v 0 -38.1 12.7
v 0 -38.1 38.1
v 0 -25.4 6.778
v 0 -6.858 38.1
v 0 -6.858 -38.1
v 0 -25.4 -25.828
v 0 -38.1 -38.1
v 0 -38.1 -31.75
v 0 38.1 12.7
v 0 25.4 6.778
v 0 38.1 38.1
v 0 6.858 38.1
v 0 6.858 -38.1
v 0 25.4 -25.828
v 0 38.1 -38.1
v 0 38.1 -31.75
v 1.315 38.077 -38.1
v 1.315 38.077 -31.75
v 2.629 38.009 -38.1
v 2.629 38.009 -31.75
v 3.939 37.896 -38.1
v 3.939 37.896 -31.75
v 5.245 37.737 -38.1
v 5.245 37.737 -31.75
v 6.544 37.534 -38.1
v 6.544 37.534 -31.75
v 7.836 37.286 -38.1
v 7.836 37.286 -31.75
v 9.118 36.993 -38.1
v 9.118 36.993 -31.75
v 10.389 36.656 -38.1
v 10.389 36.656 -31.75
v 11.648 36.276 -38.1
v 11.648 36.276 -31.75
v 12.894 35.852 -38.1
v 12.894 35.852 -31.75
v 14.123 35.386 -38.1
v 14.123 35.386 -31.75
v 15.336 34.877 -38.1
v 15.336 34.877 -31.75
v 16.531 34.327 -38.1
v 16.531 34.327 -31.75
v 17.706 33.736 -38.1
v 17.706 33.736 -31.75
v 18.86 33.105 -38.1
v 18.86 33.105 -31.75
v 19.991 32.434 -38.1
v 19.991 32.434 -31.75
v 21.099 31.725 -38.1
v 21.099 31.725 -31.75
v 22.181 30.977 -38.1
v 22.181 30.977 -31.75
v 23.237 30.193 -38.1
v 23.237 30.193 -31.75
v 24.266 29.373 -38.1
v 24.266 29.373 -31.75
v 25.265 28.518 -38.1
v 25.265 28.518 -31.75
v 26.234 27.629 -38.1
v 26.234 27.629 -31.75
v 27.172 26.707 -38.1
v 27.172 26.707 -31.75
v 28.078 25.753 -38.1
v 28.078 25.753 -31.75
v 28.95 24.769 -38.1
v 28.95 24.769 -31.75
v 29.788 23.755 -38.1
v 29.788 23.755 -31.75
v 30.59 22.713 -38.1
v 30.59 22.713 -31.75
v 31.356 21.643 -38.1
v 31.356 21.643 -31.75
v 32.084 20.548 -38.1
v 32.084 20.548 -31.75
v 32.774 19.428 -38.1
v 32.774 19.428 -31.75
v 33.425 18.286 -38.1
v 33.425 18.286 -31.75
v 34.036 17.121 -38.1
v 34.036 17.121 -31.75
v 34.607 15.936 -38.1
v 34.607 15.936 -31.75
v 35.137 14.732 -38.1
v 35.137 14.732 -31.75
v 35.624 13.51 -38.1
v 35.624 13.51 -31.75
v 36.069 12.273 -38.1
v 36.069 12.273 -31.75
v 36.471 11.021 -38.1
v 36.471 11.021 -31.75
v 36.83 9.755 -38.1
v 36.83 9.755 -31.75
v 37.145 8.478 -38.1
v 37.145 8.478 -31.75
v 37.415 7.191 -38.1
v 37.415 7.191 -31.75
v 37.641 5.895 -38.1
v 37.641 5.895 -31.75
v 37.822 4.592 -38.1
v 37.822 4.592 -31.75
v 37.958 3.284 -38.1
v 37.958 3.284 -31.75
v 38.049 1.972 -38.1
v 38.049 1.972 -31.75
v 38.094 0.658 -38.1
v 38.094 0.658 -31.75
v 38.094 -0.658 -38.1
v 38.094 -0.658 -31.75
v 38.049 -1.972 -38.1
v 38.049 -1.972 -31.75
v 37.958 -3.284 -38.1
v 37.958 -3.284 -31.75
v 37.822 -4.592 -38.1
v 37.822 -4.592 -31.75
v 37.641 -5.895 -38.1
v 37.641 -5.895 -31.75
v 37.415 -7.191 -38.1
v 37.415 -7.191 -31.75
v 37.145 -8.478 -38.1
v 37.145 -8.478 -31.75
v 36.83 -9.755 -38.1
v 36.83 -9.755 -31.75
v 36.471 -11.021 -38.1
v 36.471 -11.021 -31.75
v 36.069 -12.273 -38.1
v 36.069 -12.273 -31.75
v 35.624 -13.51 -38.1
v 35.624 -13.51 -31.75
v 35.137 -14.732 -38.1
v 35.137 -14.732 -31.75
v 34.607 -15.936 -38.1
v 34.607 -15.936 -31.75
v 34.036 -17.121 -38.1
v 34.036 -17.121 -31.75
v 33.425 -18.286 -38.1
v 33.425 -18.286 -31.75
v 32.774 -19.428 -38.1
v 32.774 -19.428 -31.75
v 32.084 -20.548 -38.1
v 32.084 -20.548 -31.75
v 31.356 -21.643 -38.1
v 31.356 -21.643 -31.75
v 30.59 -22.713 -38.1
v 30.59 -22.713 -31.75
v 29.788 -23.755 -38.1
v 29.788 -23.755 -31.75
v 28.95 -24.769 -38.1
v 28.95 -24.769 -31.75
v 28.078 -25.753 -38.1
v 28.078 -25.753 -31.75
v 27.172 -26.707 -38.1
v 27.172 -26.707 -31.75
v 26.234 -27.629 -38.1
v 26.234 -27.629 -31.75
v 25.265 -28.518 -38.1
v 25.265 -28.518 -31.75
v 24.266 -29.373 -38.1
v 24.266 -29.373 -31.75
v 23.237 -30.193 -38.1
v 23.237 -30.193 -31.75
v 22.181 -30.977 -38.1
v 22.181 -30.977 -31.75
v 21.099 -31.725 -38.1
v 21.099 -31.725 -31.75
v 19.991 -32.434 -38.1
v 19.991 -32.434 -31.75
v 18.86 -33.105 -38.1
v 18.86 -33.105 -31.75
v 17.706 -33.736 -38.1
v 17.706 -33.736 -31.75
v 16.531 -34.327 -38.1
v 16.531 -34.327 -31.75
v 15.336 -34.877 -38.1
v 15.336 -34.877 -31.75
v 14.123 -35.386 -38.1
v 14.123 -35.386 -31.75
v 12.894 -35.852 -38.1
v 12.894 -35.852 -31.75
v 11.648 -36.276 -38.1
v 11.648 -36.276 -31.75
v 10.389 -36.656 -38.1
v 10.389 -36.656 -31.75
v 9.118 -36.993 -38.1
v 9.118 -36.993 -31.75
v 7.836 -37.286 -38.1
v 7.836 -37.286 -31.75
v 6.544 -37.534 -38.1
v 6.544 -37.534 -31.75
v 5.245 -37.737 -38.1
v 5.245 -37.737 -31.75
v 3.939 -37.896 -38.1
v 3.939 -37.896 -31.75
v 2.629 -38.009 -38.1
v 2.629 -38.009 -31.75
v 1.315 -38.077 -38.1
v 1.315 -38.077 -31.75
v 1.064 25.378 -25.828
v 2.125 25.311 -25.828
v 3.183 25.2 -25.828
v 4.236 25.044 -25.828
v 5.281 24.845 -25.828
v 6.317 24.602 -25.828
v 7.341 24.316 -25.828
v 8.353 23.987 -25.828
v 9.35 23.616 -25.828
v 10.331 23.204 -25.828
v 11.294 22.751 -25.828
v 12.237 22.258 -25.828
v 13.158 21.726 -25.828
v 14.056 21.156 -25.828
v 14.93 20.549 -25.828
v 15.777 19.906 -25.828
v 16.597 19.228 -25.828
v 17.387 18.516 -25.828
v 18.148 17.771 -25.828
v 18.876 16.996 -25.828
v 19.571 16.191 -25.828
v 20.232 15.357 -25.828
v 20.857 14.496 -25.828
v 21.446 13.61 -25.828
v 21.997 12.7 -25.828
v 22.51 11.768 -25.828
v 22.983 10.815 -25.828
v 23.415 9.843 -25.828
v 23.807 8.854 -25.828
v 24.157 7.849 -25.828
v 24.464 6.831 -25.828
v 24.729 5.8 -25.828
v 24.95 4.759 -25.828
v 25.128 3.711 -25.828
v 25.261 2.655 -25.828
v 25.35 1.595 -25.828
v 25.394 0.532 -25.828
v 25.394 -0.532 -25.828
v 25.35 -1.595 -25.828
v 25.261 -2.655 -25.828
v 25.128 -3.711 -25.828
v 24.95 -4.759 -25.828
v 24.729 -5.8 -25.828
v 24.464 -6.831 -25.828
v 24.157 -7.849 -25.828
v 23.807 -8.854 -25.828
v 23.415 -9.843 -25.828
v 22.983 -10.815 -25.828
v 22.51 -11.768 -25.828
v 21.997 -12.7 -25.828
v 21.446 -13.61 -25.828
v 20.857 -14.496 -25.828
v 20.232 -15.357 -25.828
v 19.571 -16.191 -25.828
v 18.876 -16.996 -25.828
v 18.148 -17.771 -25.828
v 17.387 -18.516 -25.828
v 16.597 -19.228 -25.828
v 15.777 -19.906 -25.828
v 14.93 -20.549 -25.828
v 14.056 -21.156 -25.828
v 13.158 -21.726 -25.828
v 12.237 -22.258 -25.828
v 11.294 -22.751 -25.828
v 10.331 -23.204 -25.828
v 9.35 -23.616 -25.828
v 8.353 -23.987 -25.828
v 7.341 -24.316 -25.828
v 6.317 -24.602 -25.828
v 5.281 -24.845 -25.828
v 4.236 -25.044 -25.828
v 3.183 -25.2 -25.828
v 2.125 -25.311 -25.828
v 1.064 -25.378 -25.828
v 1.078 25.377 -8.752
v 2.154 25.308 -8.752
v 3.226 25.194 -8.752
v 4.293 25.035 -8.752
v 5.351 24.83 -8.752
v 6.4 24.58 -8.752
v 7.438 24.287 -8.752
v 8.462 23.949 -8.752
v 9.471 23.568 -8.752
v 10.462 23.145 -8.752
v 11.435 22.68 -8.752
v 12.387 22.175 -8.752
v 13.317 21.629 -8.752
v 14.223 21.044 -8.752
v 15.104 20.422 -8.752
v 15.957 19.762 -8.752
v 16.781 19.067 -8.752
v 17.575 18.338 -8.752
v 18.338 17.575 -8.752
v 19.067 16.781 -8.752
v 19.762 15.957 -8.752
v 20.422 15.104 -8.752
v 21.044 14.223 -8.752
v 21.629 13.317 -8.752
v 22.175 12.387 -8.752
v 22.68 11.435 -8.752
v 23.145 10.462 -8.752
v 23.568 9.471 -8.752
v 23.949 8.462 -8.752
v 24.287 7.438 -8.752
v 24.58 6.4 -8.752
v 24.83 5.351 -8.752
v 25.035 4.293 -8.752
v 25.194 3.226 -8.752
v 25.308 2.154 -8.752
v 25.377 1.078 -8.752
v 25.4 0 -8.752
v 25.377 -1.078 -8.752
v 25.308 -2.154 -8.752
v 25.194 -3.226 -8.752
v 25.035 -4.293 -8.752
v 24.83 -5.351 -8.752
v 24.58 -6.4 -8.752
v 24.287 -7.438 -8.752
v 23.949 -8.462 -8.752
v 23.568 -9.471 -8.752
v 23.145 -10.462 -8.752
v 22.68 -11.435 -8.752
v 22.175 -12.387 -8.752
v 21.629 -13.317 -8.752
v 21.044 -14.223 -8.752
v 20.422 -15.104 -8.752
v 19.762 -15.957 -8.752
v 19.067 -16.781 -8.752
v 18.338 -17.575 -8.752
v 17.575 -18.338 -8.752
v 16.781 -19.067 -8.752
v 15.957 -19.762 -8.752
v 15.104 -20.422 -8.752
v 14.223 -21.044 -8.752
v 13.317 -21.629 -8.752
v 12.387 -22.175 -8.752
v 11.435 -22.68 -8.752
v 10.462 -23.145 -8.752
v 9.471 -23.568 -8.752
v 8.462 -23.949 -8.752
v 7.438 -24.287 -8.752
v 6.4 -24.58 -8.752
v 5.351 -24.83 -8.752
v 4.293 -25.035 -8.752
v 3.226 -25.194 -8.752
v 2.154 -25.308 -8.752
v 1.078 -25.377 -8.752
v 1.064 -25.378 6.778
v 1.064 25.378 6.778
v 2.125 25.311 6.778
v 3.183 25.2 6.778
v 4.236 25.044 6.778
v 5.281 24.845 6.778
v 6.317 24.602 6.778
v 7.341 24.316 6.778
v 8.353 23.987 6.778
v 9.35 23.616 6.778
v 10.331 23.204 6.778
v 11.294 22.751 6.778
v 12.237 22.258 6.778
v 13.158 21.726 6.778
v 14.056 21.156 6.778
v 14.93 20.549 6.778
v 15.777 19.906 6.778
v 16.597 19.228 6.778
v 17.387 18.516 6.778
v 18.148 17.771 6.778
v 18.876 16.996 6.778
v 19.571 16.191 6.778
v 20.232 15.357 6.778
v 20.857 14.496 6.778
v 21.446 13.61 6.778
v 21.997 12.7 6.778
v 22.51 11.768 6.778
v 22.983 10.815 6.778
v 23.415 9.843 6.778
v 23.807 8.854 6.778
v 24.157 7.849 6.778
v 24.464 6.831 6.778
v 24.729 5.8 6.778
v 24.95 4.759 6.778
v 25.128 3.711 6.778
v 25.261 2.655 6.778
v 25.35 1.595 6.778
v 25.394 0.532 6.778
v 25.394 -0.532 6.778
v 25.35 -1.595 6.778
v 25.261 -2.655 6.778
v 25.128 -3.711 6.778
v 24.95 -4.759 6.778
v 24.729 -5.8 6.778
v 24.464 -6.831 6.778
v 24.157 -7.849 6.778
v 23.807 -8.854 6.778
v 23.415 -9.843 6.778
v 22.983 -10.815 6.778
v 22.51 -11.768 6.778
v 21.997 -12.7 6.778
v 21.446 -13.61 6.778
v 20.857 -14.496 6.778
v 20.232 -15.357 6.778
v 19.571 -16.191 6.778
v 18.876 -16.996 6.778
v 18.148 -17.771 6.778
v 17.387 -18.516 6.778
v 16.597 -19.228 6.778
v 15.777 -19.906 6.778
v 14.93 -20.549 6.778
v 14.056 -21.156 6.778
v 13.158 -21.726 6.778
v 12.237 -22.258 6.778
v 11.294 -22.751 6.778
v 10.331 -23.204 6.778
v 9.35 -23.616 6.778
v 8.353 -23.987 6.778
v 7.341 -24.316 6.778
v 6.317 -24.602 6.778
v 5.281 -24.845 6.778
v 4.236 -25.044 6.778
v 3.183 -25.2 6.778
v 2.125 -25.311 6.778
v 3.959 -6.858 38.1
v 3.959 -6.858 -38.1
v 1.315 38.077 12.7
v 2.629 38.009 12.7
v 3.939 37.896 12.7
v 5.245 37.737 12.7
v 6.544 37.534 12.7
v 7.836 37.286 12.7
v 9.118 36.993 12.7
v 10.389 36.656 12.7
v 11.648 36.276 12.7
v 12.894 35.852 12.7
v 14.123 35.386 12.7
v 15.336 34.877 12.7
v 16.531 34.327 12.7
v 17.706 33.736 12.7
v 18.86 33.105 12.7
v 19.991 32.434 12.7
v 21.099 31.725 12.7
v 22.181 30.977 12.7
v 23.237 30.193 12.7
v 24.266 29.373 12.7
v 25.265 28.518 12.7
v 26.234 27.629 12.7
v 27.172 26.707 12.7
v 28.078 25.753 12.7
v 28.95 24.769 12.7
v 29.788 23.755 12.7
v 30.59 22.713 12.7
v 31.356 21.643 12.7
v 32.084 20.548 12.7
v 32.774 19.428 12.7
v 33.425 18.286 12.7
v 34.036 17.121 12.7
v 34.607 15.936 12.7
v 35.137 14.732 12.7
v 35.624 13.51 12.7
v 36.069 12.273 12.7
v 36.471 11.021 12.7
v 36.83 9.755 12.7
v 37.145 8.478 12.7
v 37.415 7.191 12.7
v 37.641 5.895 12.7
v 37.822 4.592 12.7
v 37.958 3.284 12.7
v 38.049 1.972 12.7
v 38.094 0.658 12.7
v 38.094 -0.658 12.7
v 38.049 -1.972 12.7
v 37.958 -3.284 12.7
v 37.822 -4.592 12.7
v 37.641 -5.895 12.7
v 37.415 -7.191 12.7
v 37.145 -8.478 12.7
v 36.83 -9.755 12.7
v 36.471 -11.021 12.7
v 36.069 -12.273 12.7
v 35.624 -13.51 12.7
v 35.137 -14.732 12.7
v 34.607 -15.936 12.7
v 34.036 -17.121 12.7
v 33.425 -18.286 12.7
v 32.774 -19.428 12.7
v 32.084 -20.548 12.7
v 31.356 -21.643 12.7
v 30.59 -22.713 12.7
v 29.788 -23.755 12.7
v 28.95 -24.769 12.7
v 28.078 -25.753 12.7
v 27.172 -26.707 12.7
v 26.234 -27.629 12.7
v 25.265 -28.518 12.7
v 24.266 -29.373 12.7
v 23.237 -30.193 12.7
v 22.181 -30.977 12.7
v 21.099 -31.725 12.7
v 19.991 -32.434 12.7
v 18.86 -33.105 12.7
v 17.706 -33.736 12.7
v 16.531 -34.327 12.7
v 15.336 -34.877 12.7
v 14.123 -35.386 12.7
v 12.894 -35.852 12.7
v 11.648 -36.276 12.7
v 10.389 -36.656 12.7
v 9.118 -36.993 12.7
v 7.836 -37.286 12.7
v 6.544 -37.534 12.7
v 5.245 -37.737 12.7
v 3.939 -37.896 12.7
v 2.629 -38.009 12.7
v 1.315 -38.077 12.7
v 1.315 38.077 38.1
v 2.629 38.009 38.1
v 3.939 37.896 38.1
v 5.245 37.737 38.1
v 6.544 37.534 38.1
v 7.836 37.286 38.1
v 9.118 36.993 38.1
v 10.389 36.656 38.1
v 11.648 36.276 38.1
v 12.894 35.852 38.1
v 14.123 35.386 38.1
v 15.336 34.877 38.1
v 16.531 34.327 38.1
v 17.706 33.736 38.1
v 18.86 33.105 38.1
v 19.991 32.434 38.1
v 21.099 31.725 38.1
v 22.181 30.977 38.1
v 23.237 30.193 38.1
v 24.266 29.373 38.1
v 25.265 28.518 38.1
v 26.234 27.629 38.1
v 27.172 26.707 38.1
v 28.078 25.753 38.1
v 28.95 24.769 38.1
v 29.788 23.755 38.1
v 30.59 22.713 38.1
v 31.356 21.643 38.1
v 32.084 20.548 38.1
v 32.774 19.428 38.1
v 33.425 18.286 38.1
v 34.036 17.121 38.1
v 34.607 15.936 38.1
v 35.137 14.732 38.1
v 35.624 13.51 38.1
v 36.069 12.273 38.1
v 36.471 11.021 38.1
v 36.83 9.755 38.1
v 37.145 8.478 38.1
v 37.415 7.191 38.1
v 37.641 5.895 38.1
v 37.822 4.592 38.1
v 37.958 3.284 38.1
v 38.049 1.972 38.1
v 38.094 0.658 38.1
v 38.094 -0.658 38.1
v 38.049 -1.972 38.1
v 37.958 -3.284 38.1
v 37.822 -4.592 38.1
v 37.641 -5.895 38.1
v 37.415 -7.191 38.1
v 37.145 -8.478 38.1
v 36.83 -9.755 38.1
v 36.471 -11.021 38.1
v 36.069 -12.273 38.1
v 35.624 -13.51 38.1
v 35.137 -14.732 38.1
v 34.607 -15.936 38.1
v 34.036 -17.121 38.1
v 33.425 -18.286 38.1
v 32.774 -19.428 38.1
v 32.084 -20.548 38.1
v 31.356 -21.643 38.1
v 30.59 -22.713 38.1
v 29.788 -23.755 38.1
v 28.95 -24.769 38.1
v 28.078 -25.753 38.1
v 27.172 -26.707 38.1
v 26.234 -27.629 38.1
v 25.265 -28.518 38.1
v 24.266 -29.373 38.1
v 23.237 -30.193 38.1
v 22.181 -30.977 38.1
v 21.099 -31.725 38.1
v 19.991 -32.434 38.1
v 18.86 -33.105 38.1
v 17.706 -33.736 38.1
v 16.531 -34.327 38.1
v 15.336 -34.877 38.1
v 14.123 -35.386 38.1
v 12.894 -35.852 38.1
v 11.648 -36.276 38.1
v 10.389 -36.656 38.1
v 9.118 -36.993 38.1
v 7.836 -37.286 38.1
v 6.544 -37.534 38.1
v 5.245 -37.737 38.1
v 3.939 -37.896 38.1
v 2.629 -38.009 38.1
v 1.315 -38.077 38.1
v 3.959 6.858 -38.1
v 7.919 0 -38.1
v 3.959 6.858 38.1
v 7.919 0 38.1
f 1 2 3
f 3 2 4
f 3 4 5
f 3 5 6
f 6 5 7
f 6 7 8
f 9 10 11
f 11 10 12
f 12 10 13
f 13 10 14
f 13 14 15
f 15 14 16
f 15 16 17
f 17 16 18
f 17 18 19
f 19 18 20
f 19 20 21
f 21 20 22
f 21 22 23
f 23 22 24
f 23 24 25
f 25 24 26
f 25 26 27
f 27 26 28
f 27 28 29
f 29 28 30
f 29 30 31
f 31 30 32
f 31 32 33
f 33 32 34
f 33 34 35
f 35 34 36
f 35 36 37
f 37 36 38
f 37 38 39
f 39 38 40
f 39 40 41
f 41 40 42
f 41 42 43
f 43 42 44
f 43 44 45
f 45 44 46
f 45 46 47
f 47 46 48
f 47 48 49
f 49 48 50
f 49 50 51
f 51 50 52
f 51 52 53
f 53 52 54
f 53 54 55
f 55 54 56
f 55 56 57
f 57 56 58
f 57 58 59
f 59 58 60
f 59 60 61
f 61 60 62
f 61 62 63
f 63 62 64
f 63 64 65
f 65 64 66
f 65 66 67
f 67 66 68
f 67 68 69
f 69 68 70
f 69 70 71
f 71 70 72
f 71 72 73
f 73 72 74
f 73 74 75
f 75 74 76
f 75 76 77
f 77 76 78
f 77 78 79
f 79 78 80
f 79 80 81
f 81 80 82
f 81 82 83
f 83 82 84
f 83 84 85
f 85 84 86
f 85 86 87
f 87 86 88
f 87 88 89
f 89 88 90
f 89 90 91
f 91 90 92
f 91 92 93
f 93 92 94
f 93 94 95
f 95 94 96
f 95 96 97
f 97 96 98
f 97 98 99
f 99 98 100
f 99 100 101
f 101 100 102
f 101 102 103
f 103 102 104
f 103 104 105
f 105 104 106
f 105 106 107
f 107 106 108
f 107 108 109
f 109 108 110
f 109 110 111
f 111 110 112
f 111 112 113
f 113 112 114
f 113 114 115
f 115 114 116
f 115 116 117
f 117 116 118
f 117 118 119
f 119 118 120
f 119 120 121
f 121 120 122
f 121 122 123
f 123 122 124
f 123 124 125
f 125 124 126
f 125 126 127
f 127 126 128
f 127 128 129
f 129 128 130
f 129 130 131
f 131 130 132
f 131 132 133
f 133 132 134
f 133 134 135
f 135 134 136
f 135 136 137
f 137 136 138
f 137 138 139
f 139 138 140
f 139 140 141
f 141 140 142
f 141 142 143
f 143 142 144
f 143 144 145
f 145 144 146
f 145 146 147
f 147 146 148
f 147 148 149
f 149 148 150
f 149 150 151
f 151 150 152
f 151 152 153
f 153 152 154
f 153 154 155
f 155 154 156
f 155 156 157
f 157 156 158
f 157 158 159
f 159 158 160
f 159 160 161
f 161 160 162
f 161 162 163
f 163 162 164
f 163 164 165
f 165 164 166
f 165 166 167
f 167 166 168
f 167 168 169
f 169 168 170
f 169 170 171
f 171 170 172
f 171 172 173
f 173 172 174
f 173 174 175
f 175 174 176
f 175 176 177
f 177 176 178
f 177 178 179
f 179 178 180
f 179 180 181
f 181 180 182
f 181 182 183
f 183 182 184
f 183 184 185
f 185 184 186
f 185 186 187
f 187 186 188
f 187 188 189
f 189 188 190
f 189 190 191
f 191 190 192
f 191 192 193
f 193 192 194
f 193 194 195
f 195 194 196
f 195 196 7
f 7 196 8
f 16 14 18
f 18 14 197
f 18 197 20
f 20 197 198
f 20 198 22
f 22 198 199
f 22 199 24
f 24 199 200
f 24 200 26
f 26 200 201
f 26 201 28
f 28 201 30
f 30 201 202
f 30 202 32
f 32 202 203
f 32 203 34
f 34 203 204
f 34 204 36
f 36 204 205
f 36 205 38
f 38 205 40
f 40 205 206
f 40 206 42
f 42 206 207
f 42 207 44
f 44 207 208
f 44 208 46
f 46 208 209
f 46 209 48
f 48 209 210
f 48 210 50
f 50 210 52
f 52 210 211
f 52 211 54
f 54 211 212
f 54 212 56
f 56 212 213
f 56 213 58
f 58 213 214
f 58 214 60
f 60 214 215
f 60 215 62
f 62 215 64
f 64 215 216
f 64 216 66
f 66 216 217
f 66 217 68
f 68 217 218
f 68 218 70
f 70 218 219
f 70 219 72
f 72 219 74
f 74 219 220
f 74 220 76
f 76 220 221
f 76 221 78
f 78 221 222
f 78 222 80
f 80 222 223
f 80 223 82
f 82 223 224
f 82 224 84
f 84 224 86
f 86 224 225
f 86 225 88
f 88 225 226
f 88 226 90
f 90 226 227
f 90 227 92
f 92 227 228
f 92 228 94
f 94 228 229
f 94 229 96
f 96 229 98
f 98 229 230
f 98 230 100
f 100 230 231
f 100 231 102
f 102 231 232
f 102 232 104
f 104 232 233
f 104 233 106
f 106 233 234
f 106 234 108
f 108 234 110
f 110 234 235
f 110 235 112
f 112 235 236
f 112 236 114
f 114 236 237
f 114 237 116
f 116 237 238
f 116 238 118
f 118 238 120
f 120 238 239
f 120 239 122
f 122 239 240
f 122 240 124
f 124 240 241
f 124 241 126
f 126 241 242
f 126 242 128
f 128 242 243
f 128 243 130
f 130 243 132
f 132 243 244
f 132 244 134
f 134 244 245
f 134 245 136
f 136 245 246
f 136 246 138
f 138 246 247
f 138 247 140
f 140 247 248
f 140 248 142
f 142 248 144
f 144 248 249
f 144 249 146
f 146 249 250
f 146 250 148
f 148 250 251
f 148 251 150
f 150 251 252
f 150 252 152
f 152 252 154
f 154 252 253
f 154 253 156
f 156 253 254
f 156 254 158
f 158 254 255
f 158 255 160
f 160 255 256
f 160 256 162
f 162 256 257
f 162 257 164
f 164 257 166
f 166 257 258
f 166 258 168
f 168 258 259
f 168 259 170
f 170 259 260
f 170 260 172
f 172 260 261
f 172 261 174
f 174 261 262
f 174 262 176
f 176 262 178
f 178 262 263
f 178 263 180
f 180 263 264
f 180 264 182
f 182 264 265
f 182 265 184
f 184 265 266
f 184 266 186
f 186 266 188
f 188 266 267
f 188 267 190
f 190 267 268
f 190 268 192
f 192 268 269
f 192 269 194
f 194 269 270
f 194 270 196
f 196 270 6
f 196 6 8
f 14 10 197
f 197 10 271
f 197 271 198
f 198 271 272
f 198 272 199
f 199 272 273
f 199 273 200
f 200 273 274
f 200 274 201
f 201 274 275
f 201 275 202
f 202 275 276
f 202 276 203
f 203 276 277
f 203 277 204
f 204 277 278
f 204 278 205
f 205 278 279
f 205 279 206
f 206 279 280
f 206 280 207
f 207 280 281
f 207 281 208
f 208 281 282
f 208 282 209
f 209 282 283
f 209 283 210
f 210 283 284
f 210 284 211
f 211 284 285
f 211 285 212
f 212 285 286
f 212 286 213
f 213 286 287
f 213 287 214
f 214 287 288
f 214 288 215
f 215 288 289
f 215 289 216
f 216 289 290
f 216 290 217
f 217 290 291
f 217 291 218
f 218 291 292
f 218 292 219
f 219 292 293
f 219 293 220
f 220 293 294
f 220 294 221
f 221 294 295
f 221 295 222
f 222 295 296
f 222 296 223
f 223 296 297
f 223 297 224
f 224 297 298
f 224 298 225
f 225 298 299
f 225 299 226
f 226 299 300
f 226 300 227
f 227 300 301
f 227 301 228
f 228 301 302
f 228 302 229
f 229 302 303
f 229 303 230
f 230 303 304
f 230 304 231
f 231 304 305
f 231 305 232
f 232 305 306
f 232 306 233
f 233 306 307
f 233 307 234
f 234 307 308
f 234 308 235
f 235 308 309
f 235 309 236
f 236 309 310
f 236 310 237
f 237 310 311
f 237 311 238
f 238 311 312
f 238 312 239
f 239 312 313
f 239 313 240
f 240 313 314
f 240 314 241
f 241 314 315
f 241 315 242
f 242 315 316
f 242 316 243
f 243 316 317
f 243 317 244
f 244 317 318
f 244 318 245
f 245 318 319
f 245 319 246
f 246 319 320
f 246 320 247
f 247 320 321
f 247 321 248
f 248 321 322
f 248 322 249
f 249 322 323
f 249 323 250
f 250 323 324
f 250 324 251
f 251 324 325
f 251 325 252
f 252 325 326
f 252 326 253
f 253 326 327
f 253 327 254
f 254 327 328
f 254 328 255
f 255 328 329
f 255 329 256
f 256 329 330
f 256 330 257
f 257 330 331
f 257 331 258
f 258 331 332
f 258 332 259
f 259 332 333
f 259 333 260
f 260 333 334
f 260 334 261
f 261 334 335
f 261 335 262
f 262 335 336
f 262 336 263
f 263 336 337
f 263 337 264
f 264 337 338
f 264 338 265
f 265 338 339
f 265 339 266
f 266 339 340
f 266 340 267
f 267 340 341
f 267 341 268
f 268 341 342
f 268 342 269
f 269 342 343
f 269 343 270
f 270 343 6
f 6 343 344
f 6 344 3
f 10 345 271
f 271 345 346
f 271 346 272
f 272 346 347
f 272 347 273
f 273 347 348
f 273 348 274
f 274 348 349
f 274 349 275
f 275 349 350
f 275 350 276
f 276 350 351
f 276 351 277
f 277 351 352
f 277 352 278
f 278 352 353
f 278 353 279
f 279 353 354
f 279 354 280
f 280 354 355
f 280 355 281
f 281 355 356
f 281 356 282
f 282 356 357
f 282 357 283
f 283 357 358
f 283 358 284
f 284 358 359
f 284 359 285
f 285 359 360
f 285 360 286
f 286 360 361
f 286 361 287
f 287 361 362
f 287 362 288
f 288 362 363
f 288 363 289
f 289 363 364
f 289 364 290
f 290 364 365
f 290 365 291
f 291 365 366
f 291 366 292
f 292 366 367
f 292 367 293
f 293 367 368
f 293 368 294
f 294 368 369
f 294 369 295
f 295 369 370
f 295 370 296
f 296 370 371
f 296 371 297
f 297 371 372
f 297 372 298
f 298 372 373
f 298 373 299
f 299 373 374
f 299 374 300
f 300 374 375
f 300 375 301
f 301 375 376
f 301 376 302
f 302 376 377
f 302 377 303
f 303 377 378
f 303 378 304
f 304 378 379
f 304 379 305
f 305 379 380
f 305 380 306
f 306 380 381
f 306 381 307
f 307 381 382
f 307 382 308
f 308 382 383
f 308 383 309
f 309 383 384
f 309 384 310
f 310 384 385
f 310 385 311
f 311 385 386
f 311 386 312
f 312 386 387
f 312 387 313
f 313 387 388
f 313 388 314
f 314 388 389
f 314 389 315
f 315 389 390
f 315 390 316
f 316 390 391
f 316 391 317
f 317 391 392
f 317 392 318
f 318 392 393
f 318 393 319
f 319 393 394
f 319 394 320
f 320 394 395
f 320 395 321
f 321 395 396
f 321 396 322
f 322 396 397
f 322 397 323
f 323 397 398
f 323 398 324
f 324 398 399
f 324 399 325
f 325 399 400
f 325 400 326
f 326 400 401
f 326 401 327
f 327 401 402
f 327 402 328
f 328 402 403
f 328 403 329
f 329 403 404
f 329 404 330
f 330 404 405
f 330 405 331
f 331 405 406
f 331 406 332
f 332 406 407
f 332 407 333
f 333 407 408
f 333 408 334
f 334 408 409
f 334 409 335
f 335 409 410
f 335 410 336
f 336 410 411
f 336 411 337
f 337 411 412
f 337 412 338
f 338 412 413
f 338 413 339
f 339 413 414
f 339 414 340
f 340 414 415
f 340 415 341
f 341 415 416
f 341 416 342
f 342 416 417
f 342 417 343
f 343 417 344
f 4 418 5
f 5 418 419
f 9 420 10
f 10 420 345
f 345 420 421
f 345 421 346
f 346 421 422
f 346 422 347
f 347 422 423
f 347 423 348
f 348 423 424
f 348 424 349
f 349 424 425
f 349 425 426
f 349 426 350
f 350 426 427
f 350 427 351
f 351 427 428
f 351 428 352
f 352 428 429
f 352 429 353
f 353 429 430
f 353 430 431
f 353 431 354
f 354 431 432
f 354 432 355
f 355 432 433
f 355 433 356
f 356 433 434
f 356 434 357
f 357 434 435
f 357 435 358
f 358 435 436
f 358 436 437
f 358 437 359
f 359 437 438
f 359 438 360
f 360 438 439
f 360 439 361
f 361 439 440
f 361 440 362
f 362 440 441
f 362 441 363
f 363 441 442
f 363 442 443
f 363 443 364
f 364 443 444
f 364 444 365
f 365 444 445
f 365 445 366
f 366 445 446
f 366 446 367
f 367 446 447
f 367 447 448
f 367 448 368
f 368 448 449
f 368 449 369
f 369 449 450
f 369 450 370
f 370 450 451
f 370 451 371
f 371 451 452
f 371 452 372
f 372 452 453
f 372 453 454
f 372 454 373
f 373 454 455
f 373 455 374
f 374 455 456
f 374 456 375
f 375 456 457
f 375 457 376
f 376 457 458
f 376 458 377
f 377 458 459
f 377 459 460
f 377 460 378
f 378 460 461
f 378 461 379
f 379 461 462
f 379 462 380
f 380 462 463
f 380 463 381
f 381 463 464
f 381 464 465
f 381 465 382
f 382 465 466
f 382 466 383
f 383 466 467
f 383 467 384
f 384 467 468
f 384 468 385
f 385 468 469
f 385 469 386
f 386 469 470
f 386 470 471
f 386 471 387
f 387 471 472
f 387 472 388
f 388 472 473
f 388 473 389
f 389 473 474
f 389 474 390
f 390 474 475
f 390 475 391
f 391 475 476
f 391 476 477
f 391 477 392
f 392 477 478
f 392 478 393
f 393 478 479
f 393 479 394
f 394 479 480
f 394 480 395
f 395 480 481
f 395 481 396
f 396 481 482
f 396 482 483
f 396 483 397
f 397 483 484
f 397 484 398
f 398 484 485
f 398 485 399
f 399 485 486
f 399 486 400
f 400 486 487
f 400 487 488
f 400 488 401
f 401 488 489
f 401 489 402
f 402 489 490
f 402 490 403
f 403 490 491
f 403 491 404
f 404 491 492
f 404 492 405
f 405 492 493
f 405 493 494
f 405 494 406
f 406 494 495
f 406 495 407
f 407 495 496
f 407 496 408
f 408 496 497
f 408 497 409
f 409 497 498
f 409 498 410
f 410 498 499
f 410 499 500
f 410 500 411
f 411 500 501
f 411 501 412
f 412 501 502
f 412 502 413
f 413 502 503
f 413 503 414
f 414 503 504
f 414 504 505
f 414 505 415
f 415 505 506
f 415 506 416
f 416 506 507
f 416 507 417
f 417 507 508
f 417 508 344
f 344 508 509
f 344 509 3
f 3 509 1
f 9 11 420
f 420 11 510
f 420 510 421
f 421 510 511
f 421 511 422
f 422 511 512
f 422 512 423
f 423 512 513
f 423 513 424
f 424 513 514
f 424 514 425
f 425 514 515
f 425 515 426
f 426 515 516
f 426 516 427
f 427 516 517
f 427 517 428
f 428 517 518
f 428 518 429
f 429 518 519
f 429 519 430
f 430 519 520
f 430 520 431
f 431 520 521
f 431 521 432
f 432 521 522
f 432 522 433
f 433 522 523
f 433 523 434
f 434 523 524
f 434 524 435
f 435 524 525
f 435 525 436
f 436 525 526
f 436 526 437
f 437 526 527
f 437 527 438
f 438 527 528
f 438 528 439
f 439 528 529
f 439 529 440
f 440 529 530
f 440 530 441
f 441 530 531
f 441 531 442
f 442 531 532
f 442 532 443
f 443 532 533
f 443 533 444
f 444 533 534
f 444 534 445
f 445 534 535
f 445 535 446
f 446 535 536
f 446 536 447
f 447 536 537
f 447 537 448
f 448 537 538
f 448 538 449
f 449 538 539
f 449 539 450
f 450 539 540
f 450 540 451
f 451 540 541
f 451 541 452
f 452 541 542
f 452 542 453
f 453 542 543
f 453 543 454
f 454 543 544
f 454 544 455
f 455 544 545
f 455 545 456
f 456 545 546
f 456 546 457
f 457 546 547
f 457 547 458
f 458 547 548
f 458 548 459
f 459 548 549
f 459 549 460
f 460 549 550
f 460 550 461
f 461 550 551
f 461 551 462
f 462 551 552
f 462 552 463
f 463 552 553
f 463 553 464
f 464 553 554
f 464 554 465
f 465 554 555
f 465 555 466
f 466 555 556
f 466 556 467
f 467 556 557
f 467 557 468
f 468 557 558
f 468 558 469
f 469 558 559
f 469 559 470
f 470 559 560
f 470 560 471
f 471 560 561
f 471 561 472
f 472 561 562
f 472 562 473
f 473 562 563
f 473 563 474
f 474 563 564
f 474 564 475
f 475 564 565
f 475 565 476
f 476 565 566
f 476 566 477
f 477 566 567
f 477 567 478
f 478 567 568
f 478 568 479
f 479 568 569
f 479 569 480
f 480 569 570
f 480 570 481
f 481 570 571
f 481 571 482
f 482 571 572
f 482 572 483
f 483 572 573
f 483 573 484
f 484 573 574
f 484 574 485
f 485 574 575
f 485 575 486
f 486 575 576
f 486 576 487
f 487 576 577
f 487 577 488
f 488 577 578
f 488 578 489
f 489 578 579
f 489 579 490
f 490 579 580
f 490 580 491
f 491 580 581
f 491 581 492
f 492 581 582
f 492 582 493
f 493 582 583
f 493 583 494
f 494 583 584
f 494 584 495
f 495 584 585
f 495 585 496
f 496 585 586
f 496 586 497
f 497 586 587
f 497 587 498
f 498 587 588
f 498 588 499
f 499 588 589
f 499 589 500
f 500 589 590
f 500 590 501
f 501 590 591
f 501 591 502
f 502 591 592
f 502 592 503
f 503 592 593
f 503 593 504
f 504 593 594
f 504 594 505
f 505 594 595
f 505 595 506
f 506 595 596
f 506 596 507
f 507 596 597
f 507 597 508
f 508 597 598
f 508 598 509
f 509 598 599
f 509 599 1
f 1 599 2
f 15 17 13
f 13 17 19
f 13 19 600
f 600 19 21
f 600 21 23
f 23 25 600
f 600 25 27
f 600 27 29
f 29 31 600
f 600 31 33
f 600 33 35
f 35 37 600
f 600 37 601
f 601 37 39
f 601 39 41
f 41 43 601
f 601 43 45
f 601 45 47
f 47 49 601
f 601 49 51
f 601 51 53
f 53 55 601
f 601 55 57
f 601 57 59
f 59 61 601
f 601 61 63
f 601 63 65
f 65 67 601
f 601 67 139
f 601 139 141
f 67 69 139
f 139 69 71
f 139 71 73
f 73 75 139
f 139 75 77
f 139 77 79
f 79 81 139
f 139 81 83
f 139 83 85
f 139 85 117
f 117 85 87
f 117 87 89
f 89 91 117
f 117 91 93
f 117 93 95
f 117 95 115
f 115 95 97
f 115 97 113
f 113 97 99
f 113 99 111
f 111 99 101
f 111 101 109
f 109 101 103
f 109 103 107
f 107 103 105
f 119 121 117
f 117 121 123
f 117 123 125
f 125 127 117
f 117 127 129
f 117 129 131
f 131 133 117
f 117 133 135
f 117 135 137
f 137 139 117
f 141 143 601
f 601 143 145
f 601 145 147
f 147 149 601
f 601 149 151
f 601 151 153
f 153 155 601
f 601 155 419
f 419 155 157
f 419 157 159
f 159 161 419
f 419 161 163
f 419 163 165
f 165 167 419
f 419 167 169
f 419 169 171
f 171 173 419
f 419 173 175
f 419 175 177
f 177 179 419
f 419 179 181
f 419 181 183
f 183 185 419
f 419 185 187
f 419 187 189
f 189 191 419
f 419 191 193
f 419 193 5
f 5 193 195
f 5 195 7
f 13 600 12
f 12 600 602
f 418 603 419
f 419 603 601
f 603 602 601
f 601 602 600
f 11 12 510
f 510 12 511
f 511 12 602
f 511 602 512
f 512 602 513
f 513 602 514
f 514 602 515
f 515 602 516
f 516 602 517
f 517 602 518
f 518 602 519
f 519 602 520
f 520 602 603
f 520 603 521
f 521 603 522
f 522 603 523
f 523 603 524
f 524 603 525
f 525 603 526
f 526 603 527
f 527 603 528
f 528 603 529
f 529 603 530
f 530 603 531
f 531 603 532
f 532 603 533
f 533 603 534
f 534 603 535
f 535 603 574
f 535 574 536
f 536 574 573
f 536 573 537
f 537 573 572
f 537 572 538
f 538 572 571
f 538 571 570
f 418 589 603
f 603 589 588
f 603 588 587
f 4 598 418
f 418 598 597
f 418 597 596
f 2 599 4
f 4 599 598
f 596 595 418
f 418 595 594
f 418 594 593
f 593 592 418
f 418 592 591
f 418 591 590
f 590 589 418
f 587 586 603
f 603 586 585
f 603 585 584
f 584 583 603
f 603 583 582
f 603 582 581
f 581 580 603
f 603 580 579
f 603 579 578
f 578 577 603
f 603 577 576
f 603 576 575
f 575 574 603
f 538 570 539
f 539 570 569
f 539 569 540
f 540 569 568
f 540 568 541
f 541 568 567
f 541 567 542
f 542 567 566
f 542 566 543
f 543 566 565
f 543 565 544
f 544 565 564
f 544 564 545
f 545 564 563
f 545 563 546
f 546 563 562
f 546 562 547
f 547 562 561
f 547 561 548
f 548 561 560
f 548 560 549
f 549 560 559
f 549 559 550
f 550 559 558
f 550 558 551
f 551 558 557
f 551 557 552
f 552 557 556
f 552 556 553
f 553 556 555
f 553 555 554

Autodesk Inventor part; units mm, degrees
ref_plane "YZ Plane" through (0, 0, 0) normal (1, 0, 0) x (0, 1, 0)
ref_plane "XZ Plane" through (0, 0, 0) normal (0, 1, 0) x (-1, 0, 0)
ref_plane "XY Plane" through (0, 0, 0) normal (0, 0, 1) x (1, 0, 0)
sketch "Sketch1" plane through (0, 0, 0) normal (0, 0, 1) x (1, 0, 0)
  circle A0 centre (0, 0) radius 25.4
  line L0 (7.9189, 0) -> (3.9595, -6.858)
  line L1 (3.9595, -6.858) -> (-3.9595, -6.858)
  line L2 (-3.9595, -6.858) -> (-7.9189, 0)
  line L3 (-7.9189, 0) -> (-3.9595, 6.858)
  line L4 (-3.9595, 6.858) -> (3.9595, 6.858)
  line L5 (3.9595, 6.858) -> (7.9189, 0)
  dimension "d0" = 50.8
  dimension "d1" = 13.716
extrude "Extrusion1" add sketch "Sketch1" along normal mid plane 76.2
sketch "Sketch3" plane through (0, 0, 0) normal (1, 0, 0) x (0, 1, 0)
  line L0 (25.4, 38.1) -> (-25.4, 38.1) projected
  line L1 (25.4, 38.1) -> (38.1, 38.1)
  line L2 (25.4, -38.1) -> (25.4, 38.1) projected
  line L3 (0, -53.34) -> (0, 53.34) projected
  line L4 (38.1, 38.1) -> (38.1, 12.7)
  line L5 (38.1, 12.7) -> (24.2886, 6.2597)
  line L6 (24.2886, 6.2597) -> (25.4, 6.7779)
  line L7 (25.4, -38.1) -> (25.4, 38.1) projected
  point P0 (0, 0)
  point P1 (25.4, 19.4779)
  point P2 (25.4, 6.7779)
  dimension "d9" = 12.7
  dimension "d12" = 25.4
  dimension "d13" = 115
revolve "Revolution1" add sketch "Sketch3" angle 360 about axis through (0, 0, -10) along (0, 0, 1)
sketch "Sketch4" plane through (0, 0, 0) normal (1, 0, 0) x (0, 1, 0)
  line L0 (25.4, -38.1) -> (25.4, 6.7779) projected
  line L1 (-25.4, -38.1) -> (25.4, -38.1) projected
  line L2 (25.4, -38.1) -> (38.1, -38.1)
  line L3 (38.1, -38.1) -> (38.1, -31.75)
  line L4 (38.1, -31.75) -> (24.8707, -25.5811)
  line L5 (0, -46.9275) -> (0, 14.8652) projected
  line L6 (24.8707, -25.5811) -> (25.4, -25.8279)
  line L7 (25.4, -38.1) -> (25.4, 6.7779) projected
  point P0 (0, 0)
  point P1 (25.4, -25.8279)
  dimension "d14" = 12.7
  dimension "d15" = 6.35
  dimension "d16" = 115
revolve "Revolution2" add sketch "Sketch4" angle 360 about axis through (0, 0, -10) along (0, 0, 1)
split "Split1" plane through (0, 0, 0) removes the side toward (-1, 0, 0)
properties part number "pulleyOneHalf"
